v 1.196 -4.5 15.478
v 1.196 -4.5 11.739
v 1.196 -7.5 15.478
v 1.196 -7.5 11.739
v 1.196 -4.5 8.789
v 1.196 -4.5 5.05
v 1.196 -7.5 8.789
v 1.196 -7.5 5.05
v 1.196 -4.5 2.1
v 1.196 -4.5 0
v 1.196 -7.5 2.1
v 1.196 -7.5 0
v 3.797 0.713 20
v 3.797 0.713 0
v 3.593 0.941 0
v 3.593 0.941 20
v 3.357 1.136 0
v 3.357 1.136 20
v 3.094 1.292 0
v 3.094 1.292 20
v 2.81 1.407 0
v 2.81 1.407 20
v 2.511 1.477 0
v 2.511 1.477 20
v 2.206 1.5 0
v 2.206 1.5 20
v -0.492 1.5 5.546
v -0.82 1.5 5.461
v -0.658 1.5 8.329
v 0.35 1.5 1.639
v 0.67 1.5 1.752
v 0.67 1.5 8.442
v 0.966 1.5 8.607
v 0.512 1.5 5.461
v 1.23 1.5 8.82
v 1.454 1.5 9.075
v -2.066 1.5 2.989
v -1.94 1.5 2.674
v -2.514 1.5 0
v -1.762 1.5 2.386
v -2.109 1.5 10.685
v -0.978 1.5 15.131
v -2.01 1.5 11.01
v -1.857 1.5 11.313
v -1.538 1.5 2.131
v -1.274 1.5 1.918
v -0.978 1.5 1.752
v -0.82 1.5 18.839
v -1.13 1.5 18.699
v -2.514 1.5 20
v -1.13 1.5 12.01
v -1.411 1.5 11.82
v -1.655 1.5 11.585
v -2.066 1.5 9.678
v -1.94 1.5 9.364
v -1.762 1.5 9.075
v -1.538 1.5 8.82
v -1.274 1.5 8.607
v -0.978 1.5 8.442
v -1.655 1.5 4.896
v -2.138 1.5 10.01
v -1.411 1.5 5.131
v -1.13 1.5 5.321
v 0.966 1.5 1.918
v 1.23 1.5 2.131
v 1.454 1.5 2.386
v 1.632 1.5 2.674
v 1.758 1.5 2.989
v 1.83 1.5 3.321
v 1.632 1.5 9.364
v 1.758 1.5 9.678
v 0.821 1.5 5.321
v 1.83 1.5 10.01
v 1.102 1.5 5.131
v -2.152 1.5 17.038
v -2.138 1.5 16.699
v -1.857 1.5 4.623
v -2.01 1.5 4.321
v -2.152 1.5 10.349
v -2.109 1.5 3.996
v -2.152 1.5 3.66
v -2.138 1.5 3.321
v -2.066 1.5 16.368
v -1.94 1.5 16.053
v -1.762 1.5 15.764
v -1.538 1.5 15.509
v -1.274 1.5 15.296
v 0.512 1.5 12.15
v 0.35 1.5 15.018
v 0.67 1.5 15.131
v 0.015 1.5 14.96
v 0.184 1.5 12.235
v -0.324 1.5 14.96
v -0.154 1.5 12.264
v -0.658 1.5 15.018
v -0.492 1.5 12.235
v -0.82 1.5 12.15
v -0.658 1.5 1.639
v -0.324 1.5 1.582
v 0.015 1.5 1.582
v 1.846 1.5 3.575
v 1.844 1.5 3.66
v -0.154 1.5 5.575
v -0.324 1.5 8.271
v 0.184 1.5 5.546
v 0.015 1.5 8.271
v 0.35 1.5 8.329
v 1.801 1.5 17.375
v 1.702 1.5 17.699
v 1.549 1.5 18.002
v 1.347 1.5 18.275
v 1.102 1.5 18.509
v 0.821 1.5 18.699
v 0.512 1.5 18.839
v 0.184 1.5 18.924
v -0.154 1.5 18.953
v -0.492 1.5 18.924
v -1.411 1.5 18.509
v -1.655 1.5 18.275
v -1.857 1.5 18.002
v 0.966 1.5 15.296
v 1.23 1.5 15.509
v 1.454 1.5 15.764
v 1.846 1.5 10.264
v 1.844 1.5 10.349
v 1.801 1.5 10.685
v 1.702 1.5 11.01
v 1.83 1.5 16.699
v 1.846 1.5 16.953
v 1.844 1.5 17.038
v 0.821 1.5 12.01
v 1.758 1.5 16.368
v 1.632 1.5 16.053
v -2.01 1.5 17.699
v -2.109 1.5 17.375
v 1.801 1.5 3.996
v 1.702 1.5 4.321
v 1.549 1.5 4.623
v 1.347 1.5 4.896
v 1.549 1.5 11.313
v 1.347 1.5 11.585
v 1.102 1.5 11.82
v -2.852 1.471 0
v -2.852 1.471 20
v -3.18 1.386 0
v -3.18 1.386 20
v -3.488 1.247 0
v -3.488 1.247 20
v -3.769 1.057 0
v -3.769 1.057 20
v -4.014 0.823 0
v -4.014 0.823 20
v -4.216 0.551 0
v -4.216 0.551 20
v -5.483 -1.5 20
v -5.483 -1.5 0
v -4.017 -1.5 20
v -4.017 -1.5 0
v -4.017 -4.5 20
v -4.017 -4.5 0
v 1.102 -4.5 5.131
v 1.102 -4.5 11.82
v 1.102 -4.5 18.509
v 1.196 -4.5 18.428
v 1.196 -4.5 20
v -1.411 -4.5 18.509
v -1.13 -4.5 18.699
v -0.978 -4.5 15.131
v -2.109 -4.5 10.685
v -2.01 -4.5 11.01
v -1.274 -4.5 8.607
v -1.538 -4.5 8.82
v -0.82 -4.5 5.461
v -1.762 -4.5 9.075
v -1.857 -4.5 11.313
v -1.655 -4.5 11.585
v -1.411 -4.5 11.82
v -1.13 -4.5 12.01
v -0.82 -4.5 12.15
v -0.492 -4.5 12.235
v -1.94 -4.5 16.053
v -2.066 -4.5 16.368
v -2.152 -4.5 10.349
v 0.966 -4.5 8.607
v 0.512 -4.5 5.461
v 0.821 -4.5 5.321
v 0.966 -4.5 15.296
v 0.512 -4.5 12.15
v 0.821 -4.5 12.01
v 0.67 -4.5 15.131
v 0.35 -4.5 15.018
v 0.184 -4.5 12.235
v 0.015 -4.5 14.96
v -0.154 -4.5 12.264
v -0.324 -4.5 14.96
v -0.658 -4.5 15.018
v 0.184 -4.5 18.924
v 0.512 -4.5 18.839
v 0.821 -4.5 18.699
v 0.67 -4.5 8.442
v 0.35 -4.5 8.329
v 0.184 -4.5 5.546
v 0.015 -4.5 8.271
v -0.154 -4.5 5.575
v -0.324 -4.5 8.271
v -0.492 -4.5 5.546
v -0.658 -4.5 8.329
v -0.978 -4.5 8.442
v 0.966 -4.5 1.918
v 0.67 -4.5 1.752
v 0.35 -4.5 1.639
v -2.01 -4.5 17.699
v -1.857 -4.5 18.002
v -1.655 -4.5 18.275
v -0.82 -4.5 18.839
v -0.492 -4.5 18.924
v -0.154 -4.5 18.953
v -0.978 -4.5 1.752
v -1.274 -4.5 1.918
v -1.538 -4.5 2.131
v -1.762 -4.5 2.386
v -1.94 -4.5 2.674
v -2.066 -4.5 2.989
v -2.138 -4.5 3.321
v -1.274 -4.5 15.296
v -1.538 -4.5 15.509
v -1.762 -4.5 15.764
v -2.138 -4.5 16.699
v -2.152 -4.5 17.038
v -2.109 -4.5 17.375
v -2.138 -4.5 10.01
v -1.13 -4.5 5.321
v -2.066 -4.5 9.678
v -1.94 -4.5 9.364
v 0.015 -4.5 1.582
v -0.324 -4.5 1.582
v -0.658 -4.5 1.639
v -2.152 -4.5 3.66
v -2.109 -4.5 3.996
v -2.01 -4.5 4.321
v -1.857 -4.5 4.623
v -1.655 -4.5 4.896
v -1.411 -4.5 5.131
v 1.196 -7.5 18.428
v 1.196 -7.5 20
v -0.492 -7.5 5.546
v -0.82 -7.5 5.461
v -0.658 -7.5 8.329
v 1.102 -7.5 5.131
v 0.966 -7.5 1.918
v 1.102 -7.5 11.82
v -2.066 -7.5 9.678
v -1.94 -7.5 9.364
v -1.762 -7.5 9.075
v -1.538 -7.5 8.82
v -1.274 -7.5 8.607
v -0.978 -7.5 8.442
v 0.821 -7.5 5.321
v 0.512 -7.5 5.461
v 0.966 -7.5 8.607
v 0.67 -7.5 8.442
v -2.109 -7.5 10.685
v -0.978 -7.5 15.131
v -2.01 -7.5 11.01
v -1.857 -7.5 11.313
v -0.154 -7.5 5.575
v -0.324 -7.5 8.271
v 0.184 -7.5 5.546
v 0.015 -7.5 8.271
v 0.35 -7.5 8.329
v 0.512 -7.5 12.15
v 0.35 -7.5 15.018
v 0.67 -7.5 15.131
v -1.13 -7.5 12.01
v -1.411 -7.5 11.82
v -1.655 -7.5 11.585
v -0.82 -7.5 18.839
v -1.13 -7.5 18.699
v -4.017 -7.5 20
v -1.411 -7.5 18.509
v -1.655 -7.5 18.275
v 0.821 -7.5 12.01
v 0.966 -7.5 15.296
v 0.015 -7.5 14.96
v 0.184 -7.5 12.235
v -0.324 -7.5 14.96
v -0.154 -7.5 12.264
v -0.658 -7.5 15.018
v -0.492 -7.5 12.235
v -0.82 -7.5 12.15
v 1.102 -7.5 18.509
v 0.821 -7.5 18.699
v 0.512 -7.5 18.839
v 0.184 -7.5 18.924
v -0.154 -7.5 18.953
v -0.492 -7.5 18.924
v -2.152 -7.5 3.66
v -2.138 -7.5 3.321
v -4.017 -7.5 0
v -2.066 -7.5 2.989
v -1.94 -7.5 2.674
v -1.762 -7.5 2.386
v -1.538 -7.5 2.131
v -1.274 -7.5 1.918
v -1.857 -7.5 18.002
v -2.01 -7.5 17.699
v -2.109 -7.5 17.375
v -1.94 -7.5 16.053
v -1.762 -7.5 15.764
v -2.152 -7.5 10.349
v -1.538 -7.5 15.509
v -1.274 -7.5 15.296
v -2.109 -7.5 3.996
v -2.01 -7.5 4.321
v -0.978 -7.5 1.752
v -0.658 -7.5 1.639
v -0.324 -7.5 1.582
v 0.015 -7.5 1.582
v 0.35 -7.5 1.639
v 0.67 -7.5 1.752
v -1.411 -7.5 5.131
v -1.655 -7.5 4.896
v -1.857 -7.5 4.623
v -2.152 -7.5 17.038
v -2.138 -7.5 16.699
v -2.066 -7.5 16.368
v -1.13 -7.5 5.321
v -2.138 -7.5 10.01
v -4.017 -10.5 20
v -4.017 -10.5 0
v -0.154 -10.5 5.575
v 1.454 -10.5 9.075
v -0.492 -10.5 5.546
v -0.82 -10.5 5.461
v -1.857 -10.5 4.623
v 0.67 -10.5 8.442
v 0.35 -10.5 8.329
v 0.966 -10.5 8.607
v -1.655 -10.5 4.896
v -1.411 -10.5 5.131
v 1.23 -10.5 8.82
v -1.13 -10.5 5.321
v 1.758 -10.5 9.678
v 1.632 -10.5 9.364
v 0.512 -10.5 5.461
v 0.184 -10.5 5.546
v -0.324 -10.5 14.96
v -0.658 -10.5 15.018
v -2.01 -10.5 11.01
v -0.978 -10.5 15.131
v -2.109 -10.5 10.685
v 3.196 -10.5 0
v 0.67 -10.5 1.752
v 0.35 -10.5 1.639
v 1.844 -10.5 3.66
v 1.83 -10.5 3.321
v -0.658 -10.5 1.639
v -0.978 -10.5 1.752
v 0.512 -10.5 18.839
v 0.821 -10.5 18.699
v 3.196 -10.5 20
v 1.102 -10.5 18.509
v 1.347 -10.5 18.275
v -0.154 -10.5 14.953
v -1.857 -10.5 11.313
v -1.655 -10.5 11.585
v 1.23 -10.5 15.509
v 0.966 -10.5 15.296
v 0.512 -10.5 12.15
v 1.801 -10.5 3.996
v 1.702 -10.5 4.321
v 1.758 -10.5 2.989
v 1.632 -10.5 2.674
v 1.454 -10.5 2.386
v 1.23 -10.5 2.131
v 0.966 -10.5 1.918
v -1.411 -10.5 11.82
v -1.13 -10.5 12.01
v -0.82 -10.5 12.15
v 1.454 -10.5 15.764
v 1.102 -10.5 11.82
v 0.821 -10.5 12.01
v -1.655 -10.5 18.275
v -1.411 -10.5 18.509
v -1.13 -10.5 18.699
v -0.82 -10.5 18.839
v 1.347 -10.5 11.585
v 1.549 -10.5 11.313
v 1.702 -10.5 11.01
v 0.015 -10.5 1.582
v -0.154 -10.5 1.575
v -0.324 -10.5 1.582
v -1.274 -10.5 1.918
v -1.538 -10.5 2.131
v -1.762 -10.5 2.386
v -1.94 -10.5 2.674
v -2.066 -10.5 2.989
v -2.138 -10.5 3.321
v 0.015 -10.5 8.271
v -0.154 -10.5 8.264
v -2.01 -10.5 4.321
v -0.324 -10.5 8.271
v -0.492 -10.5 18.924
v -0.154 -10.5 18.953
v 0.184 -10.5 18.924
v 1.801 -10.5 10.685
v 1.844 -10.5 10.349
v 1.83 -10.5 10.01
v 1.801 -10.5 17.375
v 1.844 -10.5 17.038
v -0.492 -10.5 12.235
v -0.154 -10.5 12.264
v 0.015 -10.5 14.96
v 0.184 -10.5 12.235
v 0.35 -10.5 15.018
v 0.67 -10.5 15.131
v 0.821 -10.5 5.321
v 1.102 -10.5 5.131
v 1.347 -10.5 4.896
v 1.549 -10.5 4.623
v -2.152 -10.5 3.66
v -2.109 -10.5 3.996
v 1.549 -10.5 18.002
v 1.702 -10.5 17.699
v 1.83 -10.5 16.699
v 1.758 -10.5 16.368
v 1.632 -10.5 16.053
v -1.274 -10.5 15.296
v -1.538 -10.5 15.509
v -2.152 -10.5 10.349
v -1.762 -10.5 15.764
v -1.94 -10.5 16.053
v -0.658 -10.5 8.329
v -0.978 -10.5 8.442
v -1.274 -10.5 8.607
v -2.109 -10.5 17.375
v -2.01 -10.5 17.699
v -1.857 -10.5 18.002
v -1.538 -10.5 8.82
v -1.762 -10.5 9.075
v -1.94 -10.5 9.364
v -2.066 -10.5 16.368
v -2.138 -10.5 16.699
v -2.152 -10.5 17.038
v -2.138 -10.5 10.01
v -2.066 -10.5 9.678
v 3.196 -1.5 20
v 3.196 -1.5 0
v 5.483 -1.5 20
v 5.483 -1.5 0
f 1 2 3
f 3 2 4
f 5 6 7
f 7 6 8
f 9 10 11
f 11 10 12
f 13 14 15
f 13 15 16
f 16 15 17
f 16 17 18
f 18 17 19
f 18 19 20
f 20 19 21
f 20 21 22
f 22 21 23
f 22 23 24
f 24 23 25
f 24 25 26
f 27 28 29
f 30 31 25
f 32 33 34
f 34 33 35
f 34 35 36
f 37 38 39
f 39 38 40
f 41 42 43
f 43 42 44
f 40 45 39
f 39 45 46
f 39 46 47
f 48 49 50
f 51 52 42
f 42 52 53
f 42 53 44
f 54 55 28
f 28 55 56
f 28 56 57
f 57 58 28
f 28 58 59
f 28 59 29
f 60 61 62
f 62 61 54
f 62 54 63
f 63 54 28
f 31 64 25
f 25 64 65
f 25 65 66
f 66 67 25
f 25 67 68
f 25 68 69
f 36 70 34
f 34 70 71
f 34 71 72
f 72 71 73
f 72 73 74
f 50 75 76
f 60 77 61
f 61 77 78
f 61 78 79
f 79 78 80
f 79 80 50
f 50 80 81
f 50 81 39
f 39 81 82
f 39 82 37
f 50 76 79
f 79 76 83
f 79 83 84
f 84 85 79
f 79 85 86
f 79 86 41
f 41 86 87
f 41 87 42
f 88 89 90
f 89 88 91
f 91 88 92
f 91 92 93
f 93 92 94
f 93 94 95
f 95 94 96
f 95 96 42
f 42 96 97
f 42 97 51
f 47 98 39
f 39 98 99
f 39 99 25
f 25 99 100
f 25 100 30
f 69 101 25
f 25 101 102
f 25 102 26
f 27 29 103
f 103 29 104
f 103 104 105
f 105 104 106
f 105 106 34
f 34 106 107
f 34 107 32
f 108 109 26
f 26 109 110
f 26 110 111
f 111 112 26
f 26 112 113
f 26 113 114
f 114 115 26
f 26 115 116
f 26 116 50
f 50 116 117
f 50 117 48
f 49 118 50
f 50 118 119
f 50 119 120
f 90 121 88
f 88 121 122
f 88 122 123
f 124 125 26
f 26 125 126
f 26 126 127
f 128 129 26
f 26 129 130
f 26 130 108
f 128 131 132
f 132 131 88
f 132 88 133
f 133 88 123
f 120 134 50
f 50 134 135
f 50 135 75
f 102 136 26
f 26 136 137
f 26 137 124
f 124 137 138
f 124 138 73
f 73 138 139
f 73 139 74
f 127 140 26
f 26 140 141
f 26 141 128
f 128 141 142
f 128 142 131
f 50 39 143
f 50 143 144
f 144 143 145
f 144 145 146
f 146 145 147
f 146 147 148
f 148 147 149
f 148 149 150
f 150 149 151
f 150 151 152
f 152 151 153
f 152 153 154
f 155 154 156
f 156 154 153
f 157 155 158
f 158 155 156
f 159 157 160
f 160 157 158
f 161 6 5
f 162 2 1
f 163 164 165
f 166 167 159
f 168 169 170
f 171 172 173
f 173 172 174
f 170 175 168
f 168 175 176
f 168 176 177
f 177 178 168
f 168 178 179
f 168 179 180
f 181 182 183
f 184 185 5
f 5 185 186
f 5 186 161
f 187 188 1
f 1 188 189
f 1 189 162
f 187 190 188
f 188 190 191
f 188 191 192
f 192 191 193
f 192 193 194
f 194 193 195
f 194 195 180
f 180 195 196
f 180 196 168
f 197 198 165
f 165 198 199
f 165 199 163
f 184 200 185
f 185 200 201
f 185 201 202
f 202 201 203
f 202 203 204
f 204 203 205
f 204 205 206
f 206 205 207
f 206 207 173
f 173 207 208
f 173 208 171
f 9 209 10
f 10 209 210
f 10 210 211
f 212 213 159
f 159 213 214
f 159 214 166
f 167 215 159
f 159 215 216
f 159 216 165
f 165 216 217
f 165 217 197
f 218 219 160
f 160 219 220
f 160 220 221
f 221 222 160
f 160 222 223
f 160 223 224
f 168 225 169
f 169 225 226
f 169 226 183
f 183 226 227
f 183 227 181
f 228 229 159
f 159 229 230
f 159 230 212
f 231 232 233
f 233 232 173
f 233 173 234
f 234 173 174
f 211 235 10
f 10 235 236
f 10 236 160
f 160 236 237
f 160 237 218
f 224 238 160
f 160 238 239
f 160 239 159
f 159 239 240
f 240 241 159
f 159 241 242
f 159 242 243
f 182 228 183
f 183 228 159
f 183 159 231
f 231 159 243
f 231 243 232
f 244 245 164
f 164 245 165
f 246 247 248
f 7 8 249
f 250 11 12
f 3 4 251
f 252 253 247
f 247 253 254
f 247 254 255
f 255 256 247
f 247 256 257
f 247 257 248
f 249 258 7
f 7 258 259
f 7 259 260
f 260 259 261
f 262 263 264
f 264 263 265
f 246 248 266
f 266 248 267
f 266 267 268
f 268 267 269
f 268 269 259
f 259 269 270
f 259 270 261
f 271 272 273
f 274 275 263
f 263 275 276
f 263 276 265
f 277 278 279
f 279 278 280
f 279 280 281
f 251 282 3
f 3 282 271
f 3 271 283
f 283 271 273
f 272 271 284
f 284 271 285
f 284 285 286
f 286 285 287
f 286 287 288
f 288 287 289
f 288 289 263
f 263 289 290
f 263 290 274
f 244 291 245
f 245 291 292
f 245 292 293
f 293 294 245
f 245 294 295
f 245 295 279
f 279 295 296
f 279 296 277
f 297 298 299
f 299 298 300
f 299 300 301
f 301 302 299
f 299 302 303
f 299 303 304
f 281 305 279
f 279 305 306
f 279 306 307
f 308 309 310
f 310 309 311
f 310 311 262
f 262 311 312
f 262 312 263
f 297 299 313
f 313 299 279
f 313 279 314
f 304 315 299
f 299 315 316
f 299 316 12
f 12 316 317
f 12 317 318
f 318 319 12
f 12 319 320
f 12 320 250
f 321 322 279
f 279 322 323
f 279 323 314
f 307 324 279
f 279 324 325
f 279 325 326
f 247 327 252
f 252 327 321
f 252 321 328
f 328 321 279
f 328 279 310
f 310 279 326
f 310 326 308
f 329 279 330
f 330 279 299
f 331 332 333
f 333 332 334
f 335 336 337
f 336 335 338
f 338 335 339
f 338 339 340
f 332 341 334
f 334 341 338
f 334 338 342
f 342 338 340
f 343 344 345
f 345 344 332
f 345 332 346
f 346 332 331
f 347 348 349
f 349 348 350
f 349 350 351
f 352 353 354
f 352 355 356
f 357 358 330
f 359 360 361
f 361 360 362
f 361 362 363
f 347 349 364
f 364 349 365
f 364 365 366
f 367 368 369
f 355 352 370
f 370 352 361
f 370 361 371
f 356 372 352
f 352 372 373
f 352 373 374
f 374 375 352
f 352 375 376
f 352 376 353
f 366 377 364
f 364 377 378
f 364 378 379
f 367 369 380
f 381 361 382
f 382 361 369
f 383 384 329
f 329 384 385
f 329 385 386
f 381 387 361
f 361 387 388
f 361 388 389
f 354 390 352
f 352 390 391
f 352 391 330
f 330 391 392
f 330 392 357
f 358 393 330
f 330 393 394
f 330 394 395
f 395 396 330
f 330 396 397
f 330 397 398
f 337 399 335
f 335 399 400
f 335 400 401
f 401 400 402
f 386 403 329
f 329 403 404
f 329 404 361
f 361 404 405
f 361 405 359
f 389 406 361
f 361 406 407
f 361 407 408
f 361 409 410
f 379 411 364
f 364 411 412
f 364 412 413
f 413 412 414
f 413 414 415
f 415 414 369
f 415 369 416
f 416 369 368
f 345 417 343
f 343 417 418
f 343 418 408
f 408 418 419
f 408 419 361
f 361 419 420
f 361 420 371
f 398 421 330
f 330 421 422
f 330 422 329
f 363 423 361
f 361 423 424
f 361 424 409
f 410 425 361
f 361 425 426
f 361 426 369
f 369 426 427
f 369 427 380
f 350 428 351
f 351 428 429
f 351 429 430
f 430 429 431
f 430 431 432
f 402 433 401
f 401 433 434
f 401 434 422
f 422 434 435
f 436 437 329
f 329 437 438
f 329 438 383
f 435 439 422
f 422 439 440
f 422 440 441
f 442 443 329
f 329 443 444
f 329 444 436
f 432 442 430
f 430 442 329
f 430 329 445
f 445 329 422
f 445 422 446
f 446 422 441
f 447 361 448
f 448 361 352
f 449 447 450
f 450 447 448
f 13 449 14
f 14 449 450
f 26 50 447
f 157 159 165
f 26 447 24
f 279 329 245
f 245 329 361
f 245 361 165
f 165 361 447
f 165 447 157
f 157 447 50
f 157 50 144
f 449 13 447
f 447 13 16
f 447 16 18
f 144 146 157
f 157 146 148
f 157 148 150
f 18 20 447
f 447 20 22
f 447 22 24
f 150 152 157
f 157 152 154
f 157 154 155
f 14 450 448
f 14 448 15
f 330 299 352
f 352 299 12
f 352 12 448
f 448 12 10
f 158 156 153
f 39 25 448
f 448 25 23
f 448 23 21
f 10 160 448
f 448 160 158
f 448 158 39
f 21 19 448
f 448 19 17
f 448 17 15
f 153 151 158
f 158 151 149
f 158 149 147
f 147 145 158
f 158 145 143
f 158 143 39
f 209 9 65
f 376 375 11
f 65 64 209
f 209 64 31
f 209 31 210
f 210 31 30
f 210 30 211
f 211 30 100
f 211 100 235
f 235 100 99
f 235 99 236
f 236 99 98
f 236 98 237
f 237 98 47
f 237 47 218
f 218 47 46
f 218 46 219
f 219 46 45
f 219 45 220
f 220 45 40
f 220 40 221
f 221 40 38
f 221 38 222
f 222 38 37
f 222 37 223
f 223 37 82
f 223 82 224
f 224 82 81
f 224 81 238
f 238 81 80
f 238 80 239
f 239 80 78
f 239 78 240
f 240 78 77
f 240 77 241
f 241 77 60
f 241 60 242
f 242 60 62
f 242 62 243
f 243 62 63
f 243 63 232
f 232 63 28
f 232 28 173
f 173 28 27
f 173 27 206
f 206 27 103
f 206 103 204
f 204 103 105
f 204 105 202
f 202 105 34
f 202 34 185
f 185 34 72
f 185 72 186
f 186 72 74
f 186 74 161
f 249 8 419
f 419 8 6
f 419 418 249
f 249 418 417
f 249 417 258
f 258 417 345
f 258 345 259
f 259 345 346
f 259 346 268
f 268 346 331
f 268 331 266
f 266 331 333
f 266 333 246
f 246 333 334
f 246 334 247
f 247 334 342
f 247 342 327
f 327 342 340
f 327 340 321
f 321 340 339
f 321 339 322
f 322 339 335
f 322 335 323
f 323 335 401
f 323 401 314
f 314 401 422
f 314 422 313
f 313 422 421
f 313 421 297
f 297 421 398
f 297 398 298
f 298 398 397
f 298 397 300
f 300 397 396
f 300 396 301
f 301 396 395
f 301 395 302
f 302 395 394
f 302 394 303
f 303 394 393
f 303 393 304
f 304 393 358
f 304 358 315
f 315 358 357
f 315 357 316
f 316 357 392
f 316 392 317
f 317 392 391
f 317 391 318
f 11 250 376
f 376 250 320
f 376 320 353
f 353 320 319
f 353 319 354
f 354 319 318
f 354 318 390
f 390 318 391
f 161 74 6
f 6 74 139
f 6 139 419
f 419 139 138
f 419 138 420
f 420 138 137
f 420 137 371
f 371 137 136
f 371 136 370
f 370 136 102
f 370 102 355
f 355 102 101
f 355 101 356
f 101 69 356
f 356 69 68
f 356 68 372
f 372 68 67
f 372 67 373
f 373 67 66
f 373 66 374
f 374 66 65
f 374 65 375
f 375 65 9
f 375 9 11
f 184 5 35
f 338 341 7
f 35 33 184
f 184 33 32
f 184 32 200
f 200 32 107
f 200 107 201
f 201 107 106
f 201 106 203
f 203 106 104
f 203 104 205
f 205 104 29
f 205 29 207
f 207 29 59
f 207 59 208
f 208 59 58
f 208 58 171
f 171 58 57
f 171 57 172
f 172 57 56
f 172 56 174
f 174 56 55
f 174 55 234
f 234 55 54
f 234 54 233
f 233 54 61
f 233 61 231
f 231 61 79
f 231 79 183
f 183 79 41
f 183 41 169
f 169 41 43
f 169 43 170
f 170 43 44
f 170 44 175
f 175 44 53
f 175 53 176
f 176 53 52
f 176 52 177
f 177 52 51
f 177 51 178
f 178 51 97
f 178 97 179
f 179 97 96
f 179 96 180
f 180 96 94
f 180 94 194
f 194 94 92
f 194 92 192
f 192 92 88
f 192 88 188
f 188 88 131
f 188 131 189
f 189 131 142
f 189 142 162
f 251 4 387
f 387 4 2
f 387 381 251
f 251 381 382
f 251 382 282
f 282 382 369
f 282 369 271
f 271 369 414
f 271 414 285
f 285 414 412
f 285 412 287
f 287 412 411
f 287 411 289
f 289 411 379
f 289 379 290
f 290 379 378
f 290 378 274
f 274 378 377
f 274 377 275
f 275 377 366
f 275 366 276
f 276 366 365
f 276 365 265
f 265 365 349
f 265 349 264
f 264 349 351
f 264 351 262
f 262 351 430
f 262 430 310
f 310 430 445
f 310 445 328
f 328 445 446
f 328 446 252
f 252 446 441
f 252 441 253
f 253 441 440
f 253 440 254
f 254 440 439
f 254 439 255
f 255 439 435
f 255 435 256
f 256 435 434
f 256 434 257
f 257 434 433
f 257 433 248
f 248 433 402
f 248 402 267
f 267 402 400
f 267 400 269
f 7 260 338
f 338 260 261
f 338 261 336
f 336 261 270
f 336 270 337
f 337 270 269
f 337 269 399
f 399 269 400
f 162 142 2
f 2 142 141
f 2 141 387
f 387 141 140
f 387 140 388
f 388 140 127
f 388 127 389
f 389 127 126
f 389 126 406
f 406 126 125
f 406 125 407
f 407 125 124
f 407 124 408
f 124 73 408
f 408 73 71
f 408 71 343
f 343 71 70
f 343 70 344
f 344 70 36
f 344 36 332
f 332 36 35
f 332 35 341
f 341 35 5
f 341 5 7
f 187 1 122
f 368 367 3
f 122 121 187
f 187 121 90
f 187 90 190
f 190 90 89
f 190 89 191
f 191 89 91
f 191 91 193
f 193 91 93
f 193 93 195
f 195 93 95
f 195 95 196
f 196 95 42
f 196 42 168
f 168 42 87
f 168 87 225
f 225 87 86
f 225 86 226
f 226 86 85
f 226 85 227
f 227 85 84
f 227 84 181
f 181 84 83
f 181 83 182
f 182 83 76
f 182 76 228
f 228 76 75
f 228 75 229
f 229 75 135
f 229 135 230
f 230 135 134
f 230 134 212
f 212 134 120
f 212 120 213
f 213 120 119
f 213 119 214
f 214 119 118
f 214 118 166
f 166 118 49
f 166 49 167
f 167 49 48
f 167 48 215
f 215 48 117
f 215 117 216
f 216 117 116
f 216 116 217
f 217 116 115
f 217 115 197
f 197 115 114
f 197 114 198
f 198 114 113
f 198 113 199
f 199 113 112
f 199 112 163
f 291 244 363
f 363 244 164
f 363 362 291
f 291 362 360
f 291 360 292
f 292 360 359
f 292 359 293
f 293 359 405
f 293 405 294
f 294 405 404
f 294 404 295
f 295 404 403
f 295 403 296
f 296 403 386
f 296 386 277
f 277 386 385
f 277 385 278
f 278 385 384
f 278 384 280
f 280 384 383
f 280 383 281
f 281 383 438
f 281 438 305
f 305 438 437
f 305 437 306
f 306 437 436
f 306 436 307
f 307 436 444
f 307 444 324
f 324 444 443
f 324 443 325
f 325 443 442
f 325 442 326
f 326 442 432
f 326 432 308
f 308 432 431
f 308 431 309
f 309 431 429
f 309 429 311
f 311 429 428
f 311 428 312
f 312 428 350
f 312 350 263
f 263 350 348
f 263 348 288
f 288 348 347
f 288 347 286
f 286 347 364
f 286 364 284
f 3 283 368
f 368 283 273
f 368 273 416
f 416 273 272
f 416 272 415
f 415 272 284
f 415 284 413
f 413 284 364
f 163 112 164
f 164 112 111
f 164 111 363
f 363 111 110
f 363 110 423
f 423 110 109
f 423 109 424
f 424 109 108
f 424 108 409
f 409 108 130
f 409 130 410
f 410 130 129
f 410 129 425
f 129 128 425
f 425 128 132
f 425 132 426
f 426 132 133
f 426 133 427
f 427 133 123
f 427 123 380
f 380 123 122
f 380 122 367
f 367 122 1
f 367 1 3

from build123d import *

# Parameters (mm, degrees)
RESSALTO_EXTRUS_O1_DEPTH   = 20
ESBO_O2_R                  = 2
CORTE_EXTRUS_O1_DEPTH      = 12
CORTE_EXTRUS_O1_DEPTH_BACK = 16


with BuildPart() as part:
    # Esboço1 → Ressalto-extrusão1 (new body)
    with BuildSketch(Plane.XY):
        with BuildLine():
            Line((3.196343382, -1.5), (3.583399622, -1.5))
            Line((3.583399622, -1.5), (5.483399622, -1.5))
            Line((5.483399622, -1.5), (3.796667791, 0.712536536))
            ThreePointArc((3.796667791, 0.712536536), (3.093538771, 1.292355025), (2.206147389, 1.5))
            Line((2.206147389, 1.5), (-2.51439317, 1.5))
            ThreePointArc((-2.51439317, 1.5), (-3.488374138, 1.24681455), (-4.215757297, 0.551361073))
            Line((-4.215757297, 0.551361073), (-5.483399622, -1.5))
            Line((-5.483399622, -1.5), (-4.016600378, -1.5))
            Line((-4.016600378, -1.5), (-4.016600378, -4.5))
            Line((-4.016600378, -4.5), (1.196343382, -4.5))
            Line((1.196343382, -4.5), (1.196343382, -7.5))
            Line((1.196343382, -7.5), (-4.016600378, -7.5))
            Line((-4.016600378, -7.5), (-4.016600378, -10.5))
            Line((-4.016600378, -10.5), (3.196343382, -10.5))
            Line((3.196343382, -10.5), (3.196343382, -7.5))
            Line((3.196343382, -7.5), (3.196343382, -4.5))
            Line((3.196343382, -4.5), (3.196343382, -1.5))
        make_face()
    extrude(amount=RESSALTO_EXTRUS_O1_DEPTH)

    # Esboço2 → Corte-extrusão1 (cut, two sides)
    with BuildSketch(Plane(origin=(0, 0, 0), x_dir=(1, 0, 0), z_dir=(0, 1, 0))) as corte_extrus_o1_sk:
        with Locations((-0.15412289, -3.574880423)):
            Circle(ESBO_O2_R)
        with Locations((-0.15412289, -10.26404601)):
            Circle(ESBO_O2_R)
        with Locations((-0.15412289, -16.953211597)):
            Circle(ESBO_O2_R)
    extrude(amount=CORTE_EXTRUS_O1_DEPTH, mode=Mode.SUBTRACT)
    extrude(corte_extrus_o1_sk.sketch, amount=-CORTE_EXTRUS_O1_DEPTH_BACK, mode=Mode.SUBTRACT)


solid = part.part
